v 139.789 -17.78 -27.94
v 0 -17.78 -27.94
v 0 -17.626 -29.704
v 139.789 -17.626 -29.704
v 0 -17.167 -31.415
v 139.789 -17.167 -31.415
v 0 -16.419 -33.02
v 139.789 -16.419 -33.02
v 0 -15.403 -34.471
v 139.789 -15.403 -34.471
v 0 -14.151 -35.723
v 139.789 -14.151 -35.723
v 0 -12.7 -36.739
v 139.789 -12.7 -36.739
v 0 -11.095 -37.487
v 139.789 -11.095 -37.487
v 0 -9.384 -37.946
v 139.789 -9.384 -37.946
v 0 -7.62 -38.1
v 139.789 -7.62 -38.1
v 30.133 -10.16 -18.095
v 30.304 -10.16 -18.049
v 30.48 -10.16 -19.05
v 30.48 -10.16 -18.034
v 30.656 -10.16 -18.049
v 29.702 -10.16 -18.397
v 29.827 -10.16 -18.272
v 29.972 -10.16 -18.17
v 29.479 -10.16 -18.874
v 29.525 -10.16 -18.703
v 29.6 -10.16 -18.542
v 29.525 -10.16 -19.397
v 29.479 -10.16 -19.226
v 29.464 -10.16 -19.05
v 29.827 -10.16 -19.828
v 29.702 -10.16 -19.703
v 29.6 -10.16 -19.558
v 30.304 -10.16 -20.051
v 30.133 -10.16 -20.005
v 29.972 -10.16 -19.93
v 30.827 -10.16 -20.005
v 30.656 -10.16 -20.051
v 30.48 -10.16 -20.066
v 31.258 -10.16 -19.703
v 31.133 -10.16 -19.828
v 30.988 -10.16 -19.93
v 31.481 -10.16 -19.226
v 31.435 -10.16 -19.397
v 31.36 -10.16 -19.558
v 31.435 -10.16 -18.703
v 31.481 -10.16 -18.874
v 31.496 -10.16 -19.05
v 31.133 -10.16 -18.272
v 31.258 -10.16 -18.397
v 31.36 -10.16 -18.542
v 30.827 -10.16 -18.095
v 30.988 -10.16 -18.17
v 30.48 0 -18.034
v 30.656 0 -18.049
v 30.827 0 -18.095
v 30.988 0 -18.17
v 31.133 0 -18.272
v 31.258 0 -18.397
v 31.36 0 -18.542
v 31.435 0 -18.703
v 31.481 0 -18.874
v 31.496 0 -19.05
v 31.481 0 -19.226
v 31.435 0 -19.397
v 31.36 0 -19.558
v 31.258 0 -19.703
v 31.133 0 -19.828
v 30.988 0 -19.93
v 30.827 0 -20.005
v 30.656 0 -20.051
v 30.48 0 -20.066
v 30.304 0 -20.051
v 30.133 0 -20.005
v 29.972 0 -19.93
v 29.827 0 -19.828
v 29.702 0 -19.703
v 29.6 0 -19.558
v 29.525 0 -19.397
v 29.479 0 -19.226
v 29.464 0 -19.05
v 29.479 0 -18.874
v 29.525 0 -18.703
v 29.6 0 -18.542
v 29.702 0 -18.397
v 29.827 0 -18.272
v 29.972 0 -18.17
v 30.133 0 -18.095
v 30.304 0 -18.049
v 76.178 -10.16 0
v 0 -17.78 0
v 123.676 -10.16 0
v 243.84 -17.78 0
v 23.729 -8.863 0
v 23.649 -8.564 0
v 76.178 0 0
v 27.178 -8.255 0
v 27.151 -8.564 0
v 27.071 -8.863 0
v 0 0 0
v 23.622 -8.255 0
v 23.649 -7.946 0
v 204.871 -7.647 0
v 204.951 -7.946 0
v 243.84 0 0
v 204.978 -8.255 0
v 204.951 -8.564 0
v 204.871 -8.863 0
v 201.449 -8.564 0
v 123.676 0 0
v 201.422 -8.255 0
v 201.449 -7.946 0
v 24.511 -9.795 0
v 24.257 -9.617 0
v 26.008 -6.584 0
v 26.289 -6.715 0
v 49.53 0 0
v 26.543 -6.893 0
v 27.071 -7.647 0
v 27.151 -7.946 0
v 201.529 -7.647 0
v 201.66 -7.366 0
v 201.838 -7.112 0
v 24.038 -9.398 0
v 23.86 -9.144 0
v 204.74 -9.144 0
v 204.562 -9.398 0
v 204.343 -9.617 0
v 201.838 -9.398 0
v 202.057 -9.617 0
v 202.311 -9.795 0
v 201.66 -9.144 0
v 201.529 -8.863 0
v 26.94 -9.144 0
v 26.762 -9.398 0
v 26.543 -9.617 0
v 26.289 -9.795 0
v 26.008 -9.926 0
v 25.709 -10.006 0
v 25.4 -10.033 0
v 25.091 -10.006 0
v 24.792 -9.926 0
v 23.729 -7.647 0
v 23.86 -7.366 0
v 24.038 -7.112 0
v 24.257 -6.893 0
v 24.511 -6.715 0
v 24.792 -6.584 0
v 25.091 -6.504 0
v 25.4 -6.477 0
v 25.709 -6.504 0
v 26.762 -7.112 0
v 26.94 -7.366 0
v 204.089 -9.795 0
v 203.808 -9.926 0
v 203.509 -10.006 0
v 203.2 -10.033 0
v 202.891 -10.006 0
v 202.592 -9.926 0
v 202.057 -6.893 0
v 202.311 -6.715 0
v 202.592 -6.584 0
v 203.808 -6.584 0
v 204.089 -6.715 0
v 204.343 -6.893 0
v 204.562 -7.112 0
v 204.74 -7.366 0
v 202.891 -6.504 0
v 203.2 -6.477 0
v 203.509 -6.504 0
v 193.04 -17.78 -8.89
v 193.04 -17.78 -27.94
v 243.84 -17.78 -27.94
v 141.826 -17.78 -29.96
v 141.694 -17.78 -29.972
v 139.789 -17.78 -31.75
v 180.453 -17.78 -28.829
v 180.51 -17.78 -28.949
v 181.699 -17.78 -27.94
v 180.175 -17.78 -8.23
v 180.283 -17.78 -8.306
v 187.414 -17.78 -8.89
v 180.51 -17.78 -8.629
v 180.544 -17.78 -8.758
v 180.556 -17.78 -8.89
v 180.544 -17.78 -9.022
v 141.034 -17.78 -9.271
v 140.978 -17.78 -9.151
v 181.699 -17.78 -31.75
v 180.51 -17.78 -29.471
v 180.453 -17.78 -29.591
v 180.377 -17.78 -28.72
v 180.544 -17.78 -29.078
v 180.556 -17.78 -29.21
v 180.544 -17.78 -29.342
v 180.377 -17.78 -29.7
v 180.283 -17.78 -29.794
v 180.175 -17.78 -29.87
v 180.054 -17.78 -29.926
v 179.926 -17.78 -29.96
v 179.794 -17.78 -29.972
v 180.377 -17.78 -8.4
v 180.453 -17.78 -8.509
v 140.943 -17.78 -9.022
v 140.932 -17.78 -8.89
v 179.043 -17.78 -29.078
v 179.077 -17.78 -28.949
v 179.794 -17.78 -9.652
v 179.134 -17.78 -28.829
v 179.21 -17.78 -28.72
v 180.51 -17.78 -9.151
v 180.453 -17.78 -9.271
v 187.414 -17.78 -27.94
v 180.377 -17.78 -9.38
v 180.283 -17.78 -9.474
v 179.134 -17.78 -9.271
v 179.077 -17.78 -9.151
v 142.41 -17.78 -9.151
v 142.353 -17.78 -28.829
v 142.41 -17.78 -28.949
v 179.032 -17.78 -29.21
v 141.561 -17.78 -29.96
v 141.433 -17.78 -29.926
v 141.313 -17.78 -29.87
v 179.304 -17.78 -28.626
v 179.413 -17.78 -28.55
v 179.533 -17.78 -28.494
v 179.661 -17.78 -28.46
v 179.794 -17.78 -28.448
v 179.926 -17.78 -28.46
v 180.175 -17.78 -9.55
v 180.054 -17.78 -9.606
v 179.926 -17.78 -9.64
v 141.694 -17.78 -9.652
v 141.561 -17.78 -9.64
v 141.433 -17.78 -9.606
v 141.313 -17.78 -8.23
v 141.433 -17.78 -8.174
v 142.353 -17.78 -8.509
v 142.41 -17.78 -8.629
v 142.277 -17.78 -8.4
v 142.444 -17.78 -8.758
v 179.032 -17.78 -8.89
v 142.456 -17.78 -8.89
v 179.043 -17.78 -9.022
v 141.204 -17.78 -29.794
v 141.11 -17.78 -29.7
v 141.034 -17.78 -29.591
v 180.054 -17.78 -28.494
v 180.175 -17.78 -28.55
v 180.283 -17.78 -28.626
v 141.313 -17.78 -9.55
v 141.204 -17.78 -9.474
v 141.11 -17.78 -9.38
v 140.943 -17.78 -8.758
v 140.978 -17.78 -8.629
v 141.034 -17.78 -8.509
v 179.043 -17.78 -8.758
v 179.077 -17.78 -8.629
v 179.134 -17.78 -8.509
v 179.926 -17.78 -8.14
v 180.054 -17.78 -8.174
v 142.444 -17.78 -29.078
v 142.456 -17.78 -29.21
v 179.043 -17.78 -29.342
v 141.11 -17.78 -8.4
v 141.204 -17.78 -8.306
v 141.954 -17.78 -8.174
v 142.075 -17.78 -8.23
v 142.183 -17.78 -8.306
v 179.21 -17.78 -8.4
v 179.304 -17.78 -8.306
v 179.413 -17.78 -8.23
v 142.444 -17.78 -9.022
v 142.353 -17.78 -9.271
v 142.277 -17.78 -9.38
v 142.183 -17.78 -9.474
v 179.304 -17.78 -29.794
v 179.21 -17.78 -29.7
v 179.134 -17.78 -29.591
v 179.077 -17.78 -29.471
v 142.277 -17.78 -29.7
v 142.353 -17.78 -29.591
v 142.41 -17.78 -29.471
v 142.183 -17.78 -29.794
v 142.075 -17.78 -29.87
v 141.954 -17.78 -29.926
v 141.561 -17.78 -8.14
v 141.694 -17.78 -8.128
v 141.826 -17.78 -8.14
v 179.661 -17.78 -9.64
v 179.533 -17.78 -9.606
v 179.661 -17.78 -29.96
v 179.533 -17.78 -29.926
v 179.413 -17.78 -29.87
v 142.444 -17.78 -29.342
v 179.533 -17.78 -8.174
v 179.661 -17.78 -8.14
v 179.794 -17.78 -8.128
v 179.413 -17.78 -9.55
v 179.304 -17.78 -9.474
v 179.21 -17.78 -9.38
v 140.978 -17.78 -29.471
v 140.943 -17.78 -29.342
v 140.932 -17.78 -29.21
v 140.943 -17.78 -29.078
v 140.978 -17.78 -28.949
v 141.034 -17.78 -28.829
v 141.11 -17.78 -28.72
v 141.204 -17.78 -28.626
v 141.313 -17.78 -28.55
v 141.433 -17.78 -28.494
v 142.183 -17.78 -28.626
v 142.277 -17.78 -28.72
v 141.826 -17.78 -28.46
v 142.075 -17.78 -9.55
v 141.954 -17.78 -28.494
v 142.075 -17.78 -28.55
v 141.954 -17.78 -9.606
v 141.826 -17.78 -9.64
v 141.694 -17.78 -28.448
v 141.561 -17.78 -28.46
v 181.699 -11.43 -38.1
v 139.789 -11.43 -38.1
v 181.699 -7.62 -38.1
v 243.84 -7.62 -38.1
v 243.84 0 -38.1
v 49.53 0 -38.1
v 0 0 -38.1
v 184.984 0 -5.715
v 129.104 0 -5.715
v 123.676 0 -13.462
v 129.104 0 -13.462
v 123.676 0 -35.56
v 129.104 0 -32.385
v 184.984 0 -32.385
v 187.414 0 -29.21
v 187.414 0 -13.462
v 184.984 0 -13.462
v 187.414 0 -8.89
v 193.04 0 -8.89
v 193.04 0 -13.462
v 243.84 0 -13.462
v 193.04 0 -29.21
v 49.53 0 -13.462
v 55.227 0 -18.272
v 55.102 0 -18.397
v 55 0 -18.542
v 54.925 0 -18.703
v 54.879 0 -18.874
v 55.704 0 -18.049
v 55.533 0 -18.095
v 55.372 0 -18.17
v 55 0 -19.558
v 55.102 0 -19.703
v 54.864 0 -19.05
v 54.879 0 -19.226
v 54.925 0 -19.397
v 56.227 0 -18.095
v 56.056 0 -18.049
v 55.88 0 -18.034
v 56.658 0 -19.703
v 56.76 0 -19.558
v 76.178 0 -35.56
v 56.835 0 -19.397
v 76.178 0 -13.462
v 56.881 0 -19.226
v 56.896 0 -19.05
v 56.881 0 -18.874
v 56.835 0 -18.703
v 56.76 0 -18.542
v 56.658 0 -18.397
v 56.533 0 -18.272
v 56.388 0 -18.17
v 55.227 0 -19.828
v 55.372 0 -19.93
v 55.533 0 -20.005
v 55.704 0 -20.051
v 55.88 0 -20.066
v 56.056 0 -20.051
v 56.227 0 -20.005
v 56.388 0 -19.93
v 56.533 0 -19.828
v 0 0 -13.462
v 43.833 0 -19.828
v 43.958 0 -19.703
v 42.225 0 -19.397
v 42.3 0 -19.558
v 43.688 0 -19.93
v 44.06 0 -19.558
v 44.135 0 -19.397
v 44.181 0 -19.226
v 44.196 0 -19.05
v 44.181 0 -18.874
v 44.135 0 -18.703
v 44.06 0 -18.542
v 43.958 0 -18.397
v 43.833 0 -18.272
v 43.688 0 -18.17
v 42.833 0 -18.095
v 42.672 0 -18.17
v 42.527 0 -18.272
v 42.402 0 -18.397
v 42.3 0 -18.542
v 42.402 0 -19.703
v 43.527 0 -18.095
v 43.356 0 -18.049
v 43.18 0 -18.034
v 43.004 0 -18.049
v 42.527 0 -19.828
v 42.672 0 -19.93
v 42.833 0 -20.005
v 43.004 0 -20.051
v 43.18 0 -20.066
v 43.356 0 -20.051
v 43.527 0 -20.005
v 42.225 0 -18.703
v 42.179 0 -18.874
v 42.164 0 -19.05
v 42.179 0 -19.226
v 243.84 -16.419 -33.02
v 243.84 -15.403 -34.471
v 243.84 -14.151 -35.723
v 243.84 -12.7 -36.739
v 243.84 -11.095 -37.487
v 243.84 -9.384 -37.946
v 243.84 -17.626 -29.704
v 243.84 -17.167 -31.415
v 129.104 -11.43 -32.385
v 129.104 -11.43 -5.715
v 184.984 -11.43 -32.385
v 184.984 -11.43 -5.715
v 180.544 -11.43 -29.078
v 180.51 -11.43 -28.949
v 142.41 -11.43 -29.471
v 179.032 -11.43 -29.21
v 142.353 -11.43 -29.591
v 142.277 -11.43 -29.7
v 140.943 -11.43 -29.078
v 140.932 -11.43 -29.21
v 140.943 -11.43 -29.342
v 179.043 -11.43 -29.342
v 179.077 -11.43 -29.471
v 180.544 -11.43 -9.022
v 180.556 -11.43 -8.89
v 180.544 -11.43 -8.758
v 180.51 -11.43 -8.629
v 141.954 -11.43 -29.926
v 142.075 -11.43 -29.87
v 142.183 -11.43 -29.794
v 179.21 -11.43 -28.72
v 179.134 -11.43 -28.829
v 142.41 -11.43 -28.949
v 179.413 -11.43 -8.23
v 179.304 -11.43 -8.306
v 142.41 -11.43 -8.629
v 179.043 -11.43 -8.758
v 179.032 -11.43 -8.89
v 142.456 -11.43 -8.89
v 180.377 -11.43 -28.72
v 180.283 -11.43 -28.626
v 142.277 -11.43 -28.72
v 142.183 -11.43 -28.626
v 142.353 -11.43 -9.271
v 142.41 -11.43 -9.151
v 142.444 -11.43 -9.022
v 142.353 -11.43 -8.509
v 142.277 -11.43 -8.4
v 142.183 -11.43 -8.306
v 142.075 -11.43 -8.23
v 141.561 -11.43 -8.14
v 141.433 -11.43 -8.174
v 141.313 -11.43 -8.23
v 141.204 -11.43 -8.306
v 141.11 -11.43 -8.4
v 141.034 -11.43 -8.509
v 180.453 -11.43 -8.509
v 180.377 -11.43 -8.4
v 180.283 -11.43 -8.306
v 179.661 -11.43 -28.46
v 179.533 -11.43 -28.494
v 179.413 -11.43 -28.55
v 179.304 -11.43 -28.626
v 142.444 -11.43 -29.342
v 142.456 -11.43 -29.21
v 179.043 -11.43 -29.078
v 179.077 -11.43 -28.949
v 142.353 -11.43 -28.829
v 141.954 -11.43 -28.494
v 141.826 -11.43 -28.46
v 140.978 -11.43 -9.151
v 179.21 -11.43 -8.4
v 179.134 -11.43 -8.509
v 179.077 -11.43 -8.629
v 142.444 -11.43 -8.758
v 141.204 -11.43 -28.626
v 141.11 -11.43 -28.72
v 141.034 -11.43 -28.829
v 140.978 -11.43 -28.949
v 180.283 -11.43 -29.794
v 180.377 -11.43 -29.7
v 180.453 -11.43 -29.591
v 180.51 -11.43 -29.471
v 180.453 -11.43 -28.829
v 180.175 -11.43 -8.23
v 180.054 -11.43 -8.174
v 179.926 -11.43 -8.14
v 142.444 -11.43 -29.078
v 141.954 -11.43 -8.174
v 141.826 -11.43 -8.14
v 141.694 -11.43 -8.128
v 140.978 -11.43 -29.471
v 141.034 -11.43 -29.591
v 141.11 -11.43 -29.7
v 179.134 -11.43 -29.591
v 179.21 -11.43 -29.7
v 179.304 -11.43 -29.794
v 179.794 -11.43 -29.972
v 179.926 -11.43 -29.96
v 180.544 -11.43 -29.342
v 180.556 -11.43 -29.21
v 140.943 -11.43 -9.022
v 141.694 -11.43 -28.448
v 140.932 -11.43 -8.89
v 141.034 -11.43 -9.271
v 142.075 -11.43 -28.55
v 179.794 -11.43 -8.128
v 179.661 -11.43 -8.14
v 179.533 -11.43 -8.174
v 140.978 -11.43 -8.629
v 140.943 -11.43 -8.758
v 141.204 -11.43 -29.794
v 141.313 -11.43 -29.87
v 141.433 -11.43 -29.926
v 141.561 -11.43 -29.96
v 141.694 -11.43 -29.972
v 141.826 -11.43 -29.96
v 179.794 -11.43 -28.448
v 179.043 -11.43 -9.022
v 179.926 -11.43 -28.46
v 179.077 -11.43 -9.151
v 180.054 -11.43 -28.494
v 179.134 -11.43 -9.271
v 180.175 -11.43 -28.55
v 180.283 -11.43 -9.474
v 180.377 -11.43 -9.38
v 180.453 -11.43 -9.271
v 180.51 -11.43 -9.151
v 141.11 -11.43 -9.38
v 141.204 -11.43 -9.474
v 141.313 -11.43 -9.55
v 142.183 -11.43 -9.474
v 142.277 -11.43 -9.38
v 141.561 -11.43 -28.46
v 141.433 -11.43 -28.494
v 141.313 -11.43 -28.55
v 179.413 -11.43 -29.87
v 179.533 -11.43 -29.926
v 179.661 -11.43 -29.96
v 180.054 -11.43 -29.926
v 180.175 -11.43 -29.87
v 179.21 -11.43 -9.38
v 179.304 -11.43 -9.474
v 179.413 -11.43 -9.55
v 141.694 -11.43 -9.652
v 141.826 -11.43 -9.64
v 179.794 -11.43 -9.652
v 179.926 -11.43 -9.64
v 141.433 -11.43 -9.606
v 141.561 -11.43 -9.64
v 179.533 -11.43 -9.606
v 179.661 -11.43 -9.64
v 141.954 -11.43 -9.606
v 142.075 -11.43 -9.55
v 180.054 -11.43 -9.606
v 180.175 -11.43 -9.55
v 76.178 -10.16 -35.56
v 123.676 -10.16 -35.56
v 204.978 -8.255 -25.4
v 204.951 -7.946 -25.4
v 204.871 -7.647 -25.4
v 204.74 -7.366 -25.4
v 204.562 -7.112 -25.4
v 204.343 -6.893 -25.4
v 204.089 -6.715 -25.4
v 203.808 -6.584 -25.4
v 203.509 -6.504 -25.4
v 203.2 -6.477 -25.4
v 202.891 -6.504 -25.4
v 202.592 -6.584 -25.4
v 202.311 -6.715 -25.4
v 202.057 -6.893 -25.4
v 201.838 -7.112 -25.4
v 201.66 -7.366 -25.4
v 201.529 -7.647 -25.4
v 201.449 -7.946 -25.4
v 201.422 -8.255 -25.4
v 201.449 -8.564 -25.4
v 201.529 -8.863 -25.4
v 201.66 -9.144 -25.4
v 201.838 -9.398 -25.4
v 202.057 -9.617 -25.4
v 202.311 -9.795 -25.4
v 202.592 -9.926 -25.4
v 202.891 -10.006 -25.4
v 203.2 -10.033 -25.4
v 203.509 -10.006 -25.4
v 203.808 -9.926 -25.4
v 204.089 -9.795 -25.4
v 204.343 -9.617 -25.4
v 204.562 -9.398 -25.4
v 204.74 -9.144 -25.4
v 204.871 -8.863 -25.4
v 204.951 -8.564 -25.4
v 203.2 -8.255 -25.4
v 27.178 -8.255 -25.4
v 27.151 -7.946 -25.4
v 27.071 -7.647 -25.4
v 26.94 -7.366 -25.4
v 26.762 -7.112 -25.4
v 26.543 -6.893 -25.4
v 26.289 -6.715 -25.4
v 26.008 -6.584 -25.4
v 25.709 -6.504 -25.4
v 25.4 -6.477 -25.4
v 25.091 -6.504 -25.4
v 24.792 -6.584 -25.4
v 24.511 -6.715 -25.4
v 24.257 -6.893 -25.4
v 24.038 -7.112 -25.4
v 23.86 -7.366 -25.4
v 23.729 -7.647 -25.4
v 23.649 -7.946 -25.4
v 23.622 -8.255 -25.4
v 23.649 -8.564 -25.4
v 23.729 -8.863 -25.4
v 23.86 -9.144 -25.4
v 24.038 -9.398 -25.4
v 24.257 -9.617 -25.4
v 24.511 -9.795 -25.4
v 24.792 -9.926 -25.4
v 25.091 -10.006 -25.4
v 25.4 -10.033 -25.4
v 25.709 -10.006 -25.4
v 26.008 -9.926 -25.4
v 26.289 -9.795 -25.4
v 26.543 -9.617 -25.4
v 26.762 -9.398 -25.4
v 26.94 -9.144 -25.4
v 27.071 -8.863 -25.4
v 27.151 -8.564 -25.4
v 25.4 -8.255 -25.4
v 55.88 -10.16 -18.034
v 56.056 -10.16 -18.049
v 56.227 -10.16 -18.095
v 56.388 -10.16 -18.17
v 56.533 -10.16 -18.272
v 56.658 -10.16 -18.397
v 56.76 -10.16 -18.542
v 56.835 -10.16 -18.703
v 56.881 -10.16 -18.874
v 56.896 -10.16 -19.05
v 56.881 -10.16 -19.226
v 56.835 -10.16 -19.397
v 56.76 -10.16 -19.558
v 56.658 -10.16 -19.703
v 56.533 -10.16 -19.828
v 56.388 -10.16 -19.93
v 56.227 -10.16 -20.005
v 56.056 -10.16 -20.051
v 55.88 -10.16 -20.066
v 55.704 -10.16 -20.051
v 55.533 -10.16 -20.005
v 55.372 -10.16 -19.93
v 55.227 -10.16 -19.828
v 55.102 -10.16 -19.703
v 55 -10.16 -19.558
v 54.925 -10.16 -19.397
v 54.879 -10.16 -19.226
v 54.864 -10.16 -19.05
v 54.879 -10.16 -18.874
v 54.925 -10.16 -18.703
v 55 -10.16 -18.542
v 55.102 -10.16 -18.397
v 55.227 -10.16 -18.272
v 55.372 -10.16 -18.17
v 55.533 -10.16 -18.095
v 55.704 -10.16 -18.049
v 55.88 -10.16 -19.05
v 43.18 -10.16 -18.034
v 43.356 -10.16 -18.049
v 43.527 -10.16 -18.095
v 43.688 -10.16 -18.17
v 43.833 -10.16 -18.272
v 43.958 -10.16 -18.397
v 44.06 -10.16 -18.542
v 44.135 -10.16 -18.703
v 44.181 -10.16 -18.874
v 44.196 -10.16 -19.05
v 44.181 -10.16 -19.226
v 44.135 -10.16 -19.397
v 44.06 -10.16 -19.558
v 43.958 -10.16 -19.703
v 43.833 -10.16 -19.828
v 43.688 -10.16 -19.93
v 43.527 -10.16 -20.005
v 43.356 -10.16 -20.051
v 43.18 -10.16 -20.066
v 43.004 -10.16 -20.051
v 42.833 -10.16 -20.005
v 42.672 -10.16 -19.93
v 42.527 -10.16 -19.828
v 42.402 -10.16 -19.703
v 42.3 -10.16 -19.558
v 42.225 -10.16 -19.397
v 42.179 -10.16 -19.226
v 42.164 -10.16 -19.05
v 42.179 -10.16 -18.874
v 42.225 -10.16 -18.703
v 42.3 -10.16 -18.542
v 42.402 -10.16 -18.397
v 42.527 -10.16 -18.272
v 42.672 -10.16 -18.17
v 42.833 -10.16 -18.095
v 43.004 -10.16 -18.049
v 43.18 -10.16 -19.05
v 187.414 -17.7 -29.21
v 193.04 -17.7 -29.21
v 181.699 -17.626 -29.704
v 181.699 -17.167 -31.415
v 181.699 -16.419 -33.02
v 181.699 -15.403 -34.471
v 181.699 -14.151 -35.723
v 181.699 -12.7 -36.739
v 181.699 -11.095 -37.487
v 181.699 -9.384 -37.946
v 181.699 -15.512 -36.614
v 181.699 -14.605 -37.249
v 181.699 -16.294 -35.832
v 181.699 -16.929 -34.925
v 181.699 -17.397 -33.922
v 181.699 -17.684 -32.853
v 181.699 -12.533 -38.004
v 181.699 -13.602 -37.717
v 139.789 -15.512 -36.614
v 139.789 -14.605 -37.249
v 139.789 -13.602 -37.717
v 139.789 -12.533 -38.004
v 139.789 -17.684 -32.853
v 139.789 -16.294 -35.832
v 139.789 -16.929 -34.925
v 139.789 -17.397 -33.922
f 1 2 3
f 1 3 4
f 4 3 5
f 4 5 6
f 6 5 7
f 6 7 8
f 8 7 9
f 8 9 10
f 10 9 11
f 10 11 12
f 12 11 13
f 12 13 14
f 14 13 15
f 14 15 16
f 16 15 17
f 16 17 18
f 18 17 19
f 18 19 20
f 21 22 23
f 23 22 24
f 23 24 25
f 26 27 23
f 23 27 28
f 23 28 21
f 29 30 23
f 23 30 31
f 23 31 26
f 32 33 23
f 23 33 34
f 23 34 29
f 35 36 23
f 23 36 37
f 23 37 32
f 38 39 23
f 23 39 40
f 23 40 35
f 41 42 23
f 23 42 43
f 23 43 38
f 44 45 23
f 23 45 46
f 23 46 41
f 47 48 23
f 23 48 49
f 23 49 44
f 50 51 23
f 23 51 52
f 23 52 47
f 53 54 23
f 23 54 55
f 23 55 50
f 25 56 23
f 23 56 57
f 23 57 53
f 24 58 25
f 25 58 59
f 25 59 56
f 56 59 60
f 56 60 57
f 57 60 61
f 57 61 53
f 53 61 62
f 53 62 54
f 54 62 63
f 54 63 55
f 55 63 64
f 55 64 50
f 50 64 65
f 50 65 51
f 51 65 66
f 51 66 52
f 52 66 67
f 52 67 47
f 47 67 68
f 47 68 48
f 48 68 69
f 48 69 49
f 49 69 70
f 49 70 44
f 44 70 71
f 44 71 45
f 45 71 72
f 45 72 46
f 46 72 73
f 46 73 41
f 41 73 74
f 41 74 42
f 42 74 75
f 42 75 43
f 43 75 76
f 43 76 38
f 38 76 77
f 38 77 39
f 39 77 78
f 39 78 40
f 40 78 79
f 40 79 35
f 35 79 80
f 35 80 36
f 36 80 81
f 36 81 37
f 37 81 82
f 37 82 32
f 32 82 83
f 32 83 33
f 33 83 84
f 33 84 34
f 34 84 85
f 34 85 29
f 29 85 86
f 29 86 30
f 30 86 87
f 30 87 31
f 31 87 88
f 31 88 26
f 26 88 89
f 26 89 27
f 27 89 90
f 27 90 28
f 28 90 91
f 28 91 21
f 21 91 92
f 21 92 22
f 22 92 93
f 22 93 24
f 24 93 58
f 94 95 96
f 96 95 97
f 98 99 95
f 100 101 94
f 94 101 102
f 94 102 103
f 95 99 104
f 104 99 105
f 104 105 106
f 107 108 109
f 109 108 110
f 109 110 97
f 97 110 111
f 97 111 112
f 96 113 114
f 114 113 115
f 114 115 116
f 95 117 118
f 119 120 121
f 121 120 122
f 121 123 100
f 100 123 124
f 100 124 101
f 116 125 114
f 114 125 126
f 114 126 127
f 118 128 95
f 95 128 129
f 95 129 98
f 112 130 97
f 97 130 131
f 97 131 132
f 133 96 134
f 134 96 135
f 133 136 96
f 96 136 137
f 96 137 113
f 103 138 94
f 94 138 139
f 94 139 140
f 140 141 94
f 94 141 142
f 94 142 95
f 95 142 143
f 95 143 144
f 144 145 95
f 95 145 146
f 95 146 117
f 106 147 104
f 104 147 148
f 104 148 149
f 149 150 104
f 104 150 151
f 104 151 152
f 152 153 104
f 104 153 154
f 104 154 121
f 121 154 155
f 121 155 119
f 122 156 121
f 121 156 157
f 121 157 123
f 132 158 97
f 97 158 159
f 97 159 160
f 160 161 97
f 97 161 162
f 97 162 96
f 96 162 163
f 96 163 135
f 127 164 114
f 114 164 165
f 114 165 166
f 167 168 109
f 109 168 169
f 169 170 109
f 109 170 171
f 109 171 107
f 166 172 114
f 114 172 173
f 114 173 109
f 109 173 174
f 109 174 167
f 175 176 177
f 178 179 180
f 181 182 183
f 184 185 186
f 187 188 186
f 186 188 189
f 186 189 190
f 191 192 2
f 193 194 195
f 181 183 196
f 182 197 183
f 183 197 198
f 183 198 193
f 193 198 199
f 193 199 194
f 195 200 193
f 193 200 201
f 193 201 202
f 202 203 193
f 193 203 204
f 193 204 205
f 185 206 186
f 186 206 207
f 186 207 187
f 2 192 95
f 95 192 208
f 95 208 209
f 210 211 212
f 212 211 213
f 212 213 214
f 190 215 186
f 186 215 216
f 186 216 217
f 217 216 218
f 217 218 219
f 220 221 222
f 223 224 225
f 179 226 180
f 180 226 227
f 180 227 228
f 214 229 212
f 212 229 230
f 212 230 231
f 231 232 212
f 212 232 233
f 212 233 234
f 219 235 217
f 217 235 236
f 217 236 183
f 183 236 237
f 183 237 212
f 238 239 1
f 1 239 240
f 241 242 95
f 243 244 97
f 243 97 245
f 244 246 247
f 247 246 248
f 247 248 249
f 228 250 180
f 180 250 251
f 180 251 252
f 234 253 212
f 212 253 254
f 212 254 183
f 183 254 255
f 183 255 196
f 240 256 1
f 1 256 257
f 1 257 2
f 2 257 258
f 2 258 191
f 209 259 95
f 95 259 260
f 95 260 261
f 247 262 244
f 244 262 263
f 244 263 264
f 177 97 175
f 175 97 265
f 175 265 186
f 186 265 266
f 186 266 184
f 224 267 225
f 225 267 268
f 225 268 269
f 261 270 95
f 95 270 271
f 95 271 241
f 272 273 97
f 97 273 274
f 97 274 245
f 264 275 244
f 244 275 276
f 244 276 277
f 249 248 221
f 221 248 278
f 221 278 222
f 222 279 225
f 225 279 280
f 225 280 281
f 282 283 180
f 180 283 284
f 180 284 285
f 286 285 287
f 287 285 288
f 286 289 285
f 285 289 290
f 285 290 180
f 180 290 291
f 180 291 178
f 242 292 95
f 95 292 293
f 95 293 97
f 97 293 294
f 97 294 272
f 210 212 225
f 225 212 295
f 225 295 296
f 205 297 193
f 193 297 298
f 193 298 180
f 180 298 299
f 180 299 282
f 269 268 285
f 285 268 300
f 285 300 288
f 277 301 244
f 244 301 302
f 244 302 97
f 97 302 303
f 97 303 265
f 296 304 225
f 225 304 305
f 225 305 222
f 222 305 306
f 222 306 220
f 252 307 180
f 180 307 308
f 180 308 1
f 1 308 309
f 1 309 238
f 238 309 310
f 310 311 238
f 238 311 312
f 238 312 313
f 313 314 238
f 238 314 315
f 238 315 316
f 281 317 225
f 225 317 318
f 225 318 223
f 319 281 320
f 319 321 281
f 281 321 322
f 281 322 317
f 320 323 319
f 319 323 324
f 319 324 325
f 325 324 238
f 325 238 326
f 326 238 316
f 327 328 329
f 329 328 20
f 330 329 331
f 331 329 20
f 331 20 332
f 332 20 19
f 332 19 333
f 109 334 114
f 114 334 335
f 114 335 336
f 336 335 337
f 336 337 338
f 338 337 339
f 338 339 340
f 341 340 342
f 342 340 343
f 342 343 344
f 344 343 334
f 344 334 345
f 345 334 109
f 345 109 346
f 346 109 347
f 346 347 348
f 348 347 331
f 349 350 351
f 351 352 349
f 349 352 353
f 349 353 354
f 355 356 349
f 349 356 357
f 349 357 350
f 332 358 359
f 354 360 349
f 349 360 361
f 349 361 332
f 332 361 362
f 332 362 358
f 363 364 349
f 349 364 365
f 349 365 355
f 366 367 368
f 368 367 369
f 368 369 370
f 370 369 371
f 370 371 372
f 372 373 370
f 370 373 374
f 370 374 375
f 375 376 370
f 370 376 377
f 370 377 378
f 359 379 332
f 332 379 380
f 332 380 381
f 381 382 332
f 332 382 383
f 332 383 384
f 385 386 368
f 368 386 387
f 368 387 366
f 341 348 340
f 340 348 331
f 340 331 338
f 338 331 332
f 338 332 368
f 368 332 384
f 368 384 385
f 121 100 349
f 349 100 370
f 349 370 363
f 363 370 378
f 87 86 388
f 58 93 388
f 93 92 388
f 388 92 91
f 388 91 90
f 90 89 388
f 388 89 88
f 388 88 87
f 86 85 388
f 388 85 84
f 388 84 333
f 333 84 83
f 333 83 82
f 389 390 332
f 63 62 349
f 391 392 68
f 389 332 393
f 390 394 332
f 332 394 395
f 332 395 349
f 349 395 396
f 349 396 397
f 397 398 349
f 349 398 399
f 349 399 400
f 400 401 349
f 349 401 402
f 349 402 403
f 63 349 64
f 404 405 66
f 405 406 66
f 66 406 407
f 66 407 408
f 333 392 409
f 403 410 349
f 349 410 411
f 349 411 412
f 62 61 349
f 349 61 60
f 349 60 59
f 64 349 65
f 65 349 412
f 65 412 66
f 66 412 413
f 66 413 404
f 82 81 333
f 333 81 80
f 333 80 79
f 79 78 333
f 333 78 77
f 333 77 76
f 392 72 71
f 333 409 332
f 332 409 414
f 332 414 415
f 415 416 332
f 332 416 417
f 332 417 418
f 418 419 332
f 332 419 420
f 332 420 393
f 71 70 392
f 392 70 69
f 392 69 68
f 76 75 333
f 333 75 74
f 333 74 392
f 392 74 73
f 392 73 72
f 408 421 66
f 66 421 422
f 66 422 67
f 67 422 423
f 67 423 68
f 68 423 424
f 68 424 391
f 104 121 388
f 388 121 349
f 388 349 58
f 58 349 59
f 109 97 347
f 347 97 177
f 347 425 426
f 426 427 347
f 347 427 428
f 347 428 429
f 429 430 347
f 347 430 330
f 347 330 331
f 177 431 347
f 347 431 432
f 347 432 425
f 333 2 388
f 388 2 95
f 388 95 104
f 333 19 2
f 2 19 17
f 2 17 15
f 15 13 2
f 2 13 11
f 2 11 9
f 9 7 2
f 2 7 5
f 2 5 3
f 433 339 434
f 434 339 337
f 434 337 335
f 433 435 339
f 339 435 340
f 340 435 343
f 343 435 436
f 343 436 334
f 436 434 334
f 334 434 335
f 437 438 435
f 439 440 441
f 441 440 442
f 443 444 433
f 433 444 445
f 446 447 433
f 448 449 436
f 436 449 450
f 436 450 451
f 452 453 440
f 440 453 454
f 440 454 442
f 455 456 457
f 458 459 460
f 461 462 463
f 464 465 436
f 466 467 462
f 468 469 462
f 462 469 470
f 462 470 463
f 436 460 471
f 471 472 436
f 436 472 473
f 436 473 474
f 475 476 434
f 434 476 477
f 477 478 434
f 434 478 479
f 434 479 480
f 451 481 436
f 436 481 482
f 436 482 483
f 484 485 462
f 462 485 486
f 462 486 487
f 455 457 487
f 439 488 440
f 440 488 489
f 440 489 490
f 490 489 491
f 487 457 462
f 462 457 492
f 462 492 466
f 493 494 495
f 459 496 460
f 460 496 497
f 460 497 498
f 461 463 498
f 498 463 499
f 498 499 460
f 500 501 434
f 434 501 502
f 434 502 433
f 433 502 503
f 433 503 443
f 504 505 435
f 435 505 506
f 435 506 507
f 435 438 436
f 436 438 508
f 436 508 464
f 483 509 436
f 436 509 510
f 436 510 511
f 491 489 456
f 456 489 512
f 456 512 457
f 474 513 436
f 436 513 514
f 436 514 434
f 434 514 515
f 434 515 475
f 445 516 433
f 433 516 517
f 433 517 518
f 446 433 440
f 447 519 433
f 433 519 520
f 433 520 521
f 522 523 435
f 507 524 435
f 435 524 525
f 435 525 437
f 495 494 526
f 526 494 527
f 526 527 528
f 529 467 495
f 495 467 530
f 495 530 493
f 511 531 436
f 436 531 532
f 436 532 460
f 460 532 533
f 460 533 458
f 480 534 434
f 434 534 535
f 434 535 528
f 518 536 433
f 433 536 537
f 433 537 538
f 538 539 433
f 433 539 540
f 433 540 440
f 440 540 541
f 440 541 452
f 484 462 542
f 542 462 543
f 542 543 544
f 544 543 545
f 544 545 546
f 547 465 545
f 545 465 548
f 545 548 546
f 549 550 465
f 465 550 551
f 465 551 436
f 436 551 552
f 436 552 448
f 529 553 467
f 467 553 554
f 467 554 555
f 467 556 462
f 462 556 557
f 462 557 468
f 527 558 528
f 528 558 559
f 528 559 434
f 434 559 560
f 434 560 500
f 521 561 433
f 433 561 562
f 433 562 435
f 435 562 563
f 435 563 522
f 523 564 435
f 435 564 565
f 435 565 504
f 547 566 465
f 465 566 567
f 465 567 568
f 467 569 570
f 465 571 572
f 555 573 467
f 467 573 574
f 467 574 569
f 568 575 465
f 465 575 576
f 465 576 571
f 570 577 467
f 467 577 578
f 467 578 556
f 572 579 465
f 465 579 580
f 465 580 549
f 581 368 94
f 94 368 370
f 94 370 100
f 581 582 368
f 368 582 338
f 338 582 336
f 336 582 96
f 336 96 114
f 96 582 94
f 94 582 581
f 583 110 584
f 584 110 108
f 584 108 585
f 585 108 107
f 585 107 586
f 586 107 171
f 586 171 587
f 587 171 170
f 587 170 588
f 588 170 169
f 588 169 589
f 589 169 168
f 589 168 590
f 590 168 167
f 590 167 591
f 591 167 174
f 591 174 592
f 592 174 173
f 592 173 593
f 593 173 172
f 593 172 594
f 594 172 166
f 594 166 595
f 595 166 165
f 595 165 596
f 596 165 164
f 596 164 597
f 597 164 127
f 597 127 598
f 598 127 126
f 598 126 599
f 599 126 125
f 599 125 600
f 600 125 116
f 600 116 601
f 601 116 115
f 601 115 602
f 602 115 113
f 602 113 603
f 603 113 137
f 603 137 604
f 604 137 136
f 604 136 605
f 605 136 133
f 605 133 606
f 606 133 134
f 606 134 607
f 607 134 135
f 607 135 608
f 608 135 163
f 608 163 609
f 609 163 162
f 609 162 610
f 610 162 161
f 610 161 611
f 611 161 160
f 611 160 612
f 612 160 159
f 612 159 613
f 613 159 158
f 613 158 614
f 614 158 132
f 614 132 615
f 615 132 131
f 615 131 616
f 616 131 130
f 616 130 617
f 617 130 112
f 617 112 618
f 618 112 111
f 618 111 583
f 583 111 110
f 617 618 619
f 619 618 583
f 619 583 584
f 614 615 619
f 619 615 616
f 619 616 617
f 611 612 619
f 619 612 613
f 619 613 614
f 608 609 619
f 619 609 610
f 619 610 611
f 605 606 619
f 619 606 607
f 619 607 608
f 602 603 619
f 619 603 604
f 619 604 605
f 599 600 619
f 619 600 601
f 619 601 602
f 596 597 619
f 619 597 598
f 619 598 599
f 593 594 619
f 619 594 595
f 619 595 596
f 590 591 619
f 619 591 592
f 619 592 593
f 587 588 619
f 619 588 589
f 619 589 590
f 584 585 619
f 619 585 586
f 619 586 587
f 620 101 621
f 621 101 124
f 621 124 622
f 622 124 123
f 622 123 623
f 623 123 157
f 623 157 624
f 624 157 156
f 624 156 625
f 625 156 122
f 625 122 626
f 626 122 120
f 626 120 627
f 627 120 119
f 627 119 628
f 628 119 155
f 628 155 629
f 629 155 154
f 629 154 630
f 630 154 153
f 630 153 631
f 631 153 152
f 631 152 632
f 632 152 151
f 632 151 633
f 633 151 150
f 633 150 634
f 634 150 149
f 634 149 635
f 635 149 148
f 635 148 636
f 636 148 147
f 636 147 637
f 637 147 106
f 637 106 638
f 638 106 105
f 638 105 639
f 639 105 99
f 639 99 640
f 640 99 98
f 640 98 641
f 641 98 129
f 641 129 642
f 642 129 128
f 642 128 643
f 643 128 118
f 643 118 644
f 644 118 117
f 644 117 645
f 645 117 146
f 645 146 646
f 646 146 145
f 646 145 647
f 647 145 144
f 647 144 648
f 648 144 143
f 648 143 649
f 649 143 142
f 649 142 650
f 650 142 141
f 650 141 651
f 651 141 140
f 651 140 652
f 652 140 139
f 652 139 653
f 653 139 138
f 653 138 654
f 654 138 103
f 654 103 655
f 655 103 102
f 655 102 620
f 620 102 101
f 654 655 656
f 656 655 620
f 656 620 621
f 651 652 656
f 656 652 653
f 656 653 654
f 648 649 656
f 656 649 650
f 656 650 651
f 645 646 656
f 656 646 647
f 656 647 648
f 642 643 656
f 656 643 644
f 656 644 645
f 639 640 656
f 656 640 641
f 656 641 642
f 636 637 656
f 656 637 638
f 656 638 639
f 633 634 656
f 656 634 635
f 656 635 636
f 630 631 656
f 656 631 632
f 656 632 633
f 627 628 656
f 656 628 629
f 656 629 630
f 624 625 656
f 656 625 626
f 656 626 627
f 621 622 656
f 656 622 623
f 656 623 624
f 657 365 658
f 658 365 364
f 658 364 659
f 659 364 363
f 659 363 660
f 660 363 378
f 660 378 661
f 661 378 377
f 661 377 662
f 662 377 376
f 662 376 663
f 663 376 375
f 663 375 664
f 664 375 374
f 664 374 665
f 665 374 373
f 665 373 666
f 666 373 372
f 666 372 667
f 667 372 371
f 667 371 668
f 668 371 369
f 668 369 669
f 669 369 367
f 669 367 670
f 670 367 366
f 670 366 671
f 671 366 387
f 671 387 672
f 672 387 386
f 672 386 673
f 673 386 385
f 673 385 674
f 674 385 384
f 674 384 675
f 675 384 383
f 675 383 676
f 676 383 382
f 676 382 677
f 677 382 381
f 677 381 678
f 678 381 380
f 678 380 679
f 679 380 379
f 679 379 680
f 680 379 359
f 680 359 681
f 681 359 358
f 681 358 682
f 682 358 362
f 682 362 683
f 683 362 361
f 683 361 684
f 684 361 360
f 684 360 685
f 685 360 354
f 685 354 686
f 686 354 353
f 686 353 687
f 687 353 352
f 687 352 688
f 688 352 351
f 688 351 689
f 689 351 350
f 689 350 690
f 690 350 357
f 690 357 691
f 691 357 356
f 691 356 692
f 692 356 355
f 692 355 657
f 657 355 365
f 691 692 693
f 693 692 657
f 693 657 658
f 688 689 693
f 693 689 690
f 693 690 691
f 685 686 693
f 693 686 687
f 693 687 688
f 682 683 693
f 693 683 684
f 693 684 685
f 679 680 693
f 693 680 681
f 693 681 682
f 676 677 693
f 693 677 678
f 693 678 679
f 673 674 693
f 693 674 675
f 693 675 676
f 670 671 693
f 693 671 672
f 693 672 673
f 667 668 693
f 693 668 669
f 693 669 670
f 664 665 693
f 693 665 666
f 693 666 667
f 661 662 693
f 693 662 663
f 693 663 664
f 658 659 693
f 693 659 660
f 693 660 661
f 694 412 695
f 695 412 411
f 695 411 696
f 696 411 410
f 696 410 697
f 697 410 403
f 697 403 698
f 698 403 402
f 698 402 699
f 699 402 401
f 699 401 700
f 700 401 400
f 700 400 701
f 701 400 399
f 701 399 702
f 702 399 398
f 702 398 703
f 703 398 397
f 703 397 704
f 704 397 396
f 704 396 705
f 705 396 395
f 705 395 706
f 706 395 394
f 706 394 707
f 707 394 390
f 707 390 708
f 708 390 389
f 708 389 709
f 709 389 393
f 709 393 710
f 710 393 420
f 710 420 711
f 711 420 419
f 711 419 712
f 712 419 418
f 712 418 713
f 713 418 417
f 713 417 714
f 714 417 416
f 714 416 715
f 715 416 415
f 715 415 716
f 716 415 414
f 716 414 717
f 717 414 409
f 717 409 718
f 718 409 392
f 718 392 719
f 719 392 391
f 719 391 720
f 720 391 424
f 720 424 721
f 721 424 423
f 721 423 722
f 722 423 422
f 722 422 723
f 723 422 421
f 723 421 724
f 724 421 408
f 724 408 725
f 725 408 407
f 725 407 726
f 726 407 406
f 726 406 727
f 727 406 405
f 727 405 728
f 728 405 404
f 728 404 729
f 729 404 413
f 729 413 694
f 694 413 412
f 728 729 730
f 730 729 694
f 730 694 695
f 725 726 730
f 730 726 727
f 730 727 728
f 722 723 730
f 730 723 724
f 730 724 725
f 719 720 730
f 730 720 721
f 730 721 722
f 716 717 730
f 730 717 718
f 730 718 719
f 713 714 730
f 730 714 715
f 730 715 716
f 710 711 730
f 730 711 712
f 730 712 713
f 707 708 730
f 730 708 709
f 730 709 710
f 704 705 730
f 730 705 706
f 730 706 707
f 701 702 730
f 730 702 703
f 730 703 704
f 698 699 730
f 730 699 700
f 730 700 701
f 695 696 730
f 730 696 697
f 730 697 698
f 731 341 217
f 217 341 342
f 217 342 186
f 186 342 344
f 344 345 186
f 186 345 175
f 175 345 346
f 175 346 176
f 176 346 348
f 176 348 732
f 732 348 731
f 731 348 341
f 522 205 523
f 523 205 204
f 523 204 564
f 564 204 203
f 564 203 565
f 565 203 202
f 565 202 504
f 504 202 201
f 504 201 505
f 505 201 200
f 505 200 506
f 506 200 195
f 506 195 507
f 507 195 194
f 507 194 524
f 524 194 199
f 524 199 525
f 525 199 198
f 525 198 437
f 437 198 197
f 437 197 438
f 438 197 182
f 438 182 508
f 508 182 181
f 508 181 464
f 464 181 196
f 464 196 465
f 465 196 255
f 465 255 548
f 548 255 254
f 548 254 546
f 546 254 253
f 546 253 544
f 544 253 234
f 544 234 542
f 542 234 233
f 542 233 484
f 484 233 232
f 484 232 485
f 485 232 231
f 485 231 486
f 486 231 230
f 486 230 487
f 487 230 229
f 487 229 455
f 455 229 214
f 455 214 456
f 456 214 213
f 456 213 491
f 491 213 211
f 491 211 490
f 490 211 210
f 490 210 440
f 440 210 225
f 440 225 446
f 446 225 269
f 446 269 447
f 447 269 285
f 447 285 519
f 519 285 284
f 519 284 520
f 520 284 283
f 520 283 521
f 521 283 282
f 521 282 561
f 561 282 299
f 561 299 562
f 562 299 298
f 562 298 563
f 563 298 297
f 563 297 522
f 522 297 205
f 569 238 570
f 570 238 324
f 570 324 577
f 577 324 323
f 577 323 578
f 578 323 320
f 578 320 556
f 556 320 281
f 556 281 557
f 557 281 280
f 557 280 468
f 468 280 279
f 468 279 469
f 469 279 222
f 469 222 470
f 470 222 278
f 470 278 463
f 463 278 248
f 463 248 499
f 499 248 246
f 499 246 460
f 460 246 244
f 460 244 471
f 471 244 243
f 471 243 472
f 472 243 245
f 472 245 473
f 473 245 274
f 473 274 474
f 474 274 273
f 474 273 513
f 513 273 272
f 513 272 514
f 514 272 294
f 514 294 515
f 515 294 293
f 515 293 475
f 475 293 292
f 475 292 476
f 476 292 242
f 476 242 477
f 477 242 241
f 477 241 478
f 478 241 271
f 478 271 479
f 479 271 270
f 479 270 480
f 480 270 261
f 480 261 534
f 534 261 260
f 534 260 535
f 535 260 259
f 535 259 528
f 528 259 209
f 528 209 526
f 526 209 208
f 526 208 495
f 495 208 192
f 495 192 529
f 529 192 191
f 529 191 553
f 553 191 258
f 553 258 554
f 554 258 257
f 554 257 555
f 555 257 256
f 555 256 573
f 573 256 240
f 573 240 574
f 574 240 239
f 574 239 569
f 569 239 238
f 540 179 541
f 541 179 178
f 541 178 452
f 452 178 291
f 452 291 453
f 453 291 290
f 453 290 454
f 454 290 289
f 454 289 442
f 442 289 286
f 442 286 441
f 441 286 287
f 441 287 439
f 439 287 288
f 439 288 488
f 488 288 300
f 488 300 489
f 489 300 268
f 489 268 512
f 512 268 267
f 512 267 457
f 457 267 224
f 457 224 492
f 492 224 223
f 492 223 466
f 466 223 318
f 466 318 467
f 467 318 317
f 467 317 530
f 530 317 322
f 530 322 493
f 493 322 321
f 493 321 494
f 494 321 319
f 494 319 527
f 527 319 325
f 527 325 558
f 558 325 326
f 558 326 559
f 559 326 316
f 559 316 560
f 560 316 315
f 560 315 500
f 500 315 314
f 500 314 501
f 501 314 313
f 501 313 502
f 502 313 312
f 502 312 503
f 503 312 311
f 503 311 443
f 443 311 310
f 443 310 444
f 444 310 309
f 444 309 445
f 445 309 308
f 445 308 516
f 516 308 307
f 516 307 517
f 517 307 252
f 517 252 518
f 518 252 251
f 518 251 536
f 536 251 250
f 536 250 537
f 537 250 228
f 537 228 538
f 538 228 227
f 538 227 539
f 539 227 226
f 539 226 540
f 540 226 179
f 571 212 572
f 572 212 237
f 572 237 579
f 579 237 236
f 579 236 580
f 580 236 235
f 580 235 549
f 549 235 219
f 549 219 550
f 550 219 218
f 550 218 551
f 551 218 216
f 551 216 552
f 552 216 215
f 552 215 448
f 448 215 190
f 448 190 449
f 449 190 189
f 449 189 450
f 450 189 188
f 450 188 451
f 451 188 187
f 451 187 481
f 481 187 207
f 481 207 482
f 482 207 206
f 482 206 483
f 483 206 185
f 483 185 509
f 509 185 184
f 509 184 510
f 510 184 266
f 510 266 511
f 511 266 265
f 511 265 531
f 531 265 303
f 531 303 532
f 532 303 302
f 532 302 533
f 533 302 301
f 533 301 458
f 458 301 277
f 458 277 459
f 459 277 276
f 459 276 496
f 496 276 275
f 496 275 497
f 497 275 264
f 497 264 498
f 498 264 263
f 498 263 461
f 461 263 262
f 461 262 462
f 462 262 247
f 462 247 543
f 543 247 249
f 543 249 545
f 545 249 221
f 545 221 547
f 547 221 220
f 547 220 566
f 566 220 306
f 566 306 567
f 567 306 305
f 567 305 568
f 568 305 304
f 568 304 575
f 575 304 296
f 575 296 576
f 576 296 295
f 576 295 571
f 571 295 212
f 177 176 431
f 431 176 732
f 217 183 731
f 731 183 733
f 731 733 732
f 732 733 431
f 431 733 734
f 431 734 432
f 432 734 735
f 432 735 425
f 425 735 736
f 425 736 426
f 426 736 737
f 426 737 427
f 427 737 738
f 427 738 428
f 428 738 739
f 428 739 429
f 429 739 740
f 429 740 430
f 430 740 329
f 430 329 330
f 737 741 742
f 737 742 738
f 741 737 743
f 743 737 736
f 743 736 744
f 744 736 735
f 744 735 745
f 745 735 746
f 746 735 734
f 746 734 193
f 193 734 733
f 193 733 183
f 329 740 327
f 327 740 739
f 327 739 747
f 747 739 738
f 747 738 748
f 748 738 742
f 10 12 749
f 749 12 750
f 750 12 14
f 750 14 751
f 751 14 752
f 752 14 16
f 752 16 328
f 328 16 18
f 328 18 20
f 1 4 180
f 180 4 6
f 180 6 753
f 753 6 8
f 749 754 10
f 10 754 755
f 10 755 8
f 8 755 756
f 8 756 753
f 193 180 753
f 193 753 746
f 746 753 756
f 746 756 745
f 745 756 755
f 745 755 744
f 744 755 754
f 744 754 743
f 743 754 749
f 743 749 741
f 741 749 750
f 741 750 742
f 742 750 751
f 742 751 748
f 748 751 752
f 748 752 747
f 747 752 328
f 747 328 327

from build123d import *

# Parameters (mm, degrees)
SKETCH1_W               = 38.1
SKETCH1_H               = 17.78
BOSS_EXTRUDE1_DEPTH     = 243.84
SKETCH2_W               = 55.88
SKETCH2_H               = 26.67
CUT_EXTRUDE1_DEPTH      = 11.43
SKETCH3_W               = 47.498
SKETCH3_H               = 35.56
CUT_EXTRUDE2_DEPTH      = 10.16
SKETCH4_R               = 1.778
CUT_EXTRUDE3_DEPTH      = 25.4
SKETCH5_R               = 1.016
CUT_EXTRUDE4_DEPTH      = 10.16
SKETCH6_R               = 0.762
CUT_EXTRUDE5_DEPTH      = 6.35
LPATTERN1_COUNT         = 2
LPATTERN1_PITCH         = 38.1
LPATTERN2_COUNT         = 3
LPATTERN2_PITCH         = 12.7
MIRROR2_COPY_1_SKETCH_R = 0.762
MIRROR2_COPY_1_DEPTH    = 6.35
SKETCH7_W               = 5.626456328
SKETCH7_H               = 20.32
CUT_EXTRUDE6_DEPTH      = 248.4382428
MIRROR3_COPY_1_SKETCH_R = 0.762
MIRROR3_COPY_1_DEPTH    = 6.35
MIRROR3_COPY_2_SKETCH_R = 0.762
MIRROR3_COPY_2_DEPTH    = 6.35
MIRROR3_COPY_3_SKETCH_R = 0.762
MIRROR3_COPY_3_DEPTH    = 6.35
SKETCH8_R               = 0.762
BOSS_EXTRUDE2_DEPTH     = 17.78
FILLET1_R               = 10.16
BOSS_EXTRUDE3_DEPTH     = 20.955
SKETCH12_R              = 0.762
CUT_EXTRUDE8_DEPTH      = 248.063150834
FILLET2_R               = 6.35


with BuildPart() as part:
    # Sketch1 → Boss-Extrude1 (new body)
    with BuildSketch(Plane(origin=(0, 0, 0), x_dir=(0, 0, -1), z_dir=(1, 0, 0))):
        with Locations((19.05, -8.89)):
            Rectangle(SKETCH1_W, SKETCH1_H)
    extrude(amount=BOSS_EXTRUDE1_DEPTH)

    # Sketch2 → Cut-Extrude1 (cut)
    with BuildSketch(Plane(origin=(0, 0, 0), x_dir=(1, 0, 0), z_dir=(0, 1, 0))):
        with Locations((157.044117332, 19.05)):
            Rectangle(SKETCH2_W, SKETCH2_H)
    extrude(amount=-CUT_EXTRUDE1_DEPTH, mode=Mode.SUBTRACT)

    # Sketch3 → Cut-Extrude2 (cut)
    with BuildSketch(Plane(origin=(0, 0, 0), x_dir=(1, 0, 0), z_dir=(0, 1, 0))):
        with Locations((99.926945865, 17.78)):
            Rectangle(SKETCH3_W, SKETCH3_H)
    extrude(amount=-CUT_EXTRUDE2_DEPTH, mode=Mode.SUBTRACT)

    # Sketch4 → Cut-Extrude3 (cut)
    with BuildSketch(Plane.XY):
        with Locations((25.4, -8.255)):
            Circle(SKETCH4_R)
        with Locations((203.2, -8.255)):
            Circle(SKETCH4_R)
    extrude(amount=-CUT_EXTRUDE3_DEPTH, mode=Mode.SUBTRACT)

    # Sketch5 → Cut-Extrude4 (cut)
    with BuildSketch(Plane(origin=(0, 0, 0), x_dir=(1, 0, 0), z_dir=(0, 1, 0))):
        with Locations(Location((55.88, 19.05, 0), (0, 0, 270))):
            Circle(SKETCH5_R)
    cut_extrude4 = extrude(amount=-CUT_EXTRUDE4_DEPTH, mode=Mode.SUBTRACT)

    # Sketch6 → Cut-Extrude5 (cut)
    with BuildSketch(Plane(origin=(0, 0, 0), x_dir=(1, 0, 0), z_dir=(0, 1, 0))):
        with Locations(Location((200.66, 29.21, 0), (0, 0, 270))):
            Circle(SKETCH6_R)
        with Locations(Location((200.66, 8.89, 0), (0, 0, 270))):
            Circle(SKETCH6_R)
    cut_extrude5 = extrude(amount=-CUT_EXTRUDE5_DEPTH, mode=Mode.SUBTRACT)

    # LPattern1: Cut-Extrude5 ×2
    with Locations(*[(i * LPATTERN1_PITCH, 0, 0) for i in range(1, LPATTERN1_COUNT)]):
        add(cut_extrude5, mode=Mode.SUBTRACT)

    # LPattern2: Cut-Extrude4 ×3
    with Locations(*[(-i * LPATTERN2_PITCH, 0, 0) for i in range(1, LPATTERN2_COUNT)]):
        add(cut_extrude4, mode=Mode.SUBTRACT)

    # Mirror2: Cut-Extrude5 across plane
    add(cut_extrude5.mirror(Plane.ZX.offset(-8.89)), mode=Mode.SUBTRACT)

    # Mirror2 copy 1 sketch → Mirror2 copy 1 (cut)
    with BuildSketch(Plane(origin=(38.1, -17.78, 0), x_dir=(1, 0, 0), z_dir=(0, -1, 0))):
        with Locations((200.66, -29.21)):
            Circle(MIRROR2_COPY_1_SKETCH_R)
        with Locations((200.66, -8.89)):
            Circle(MIRROR2_COPY_1_SKETCH_R)
    extrude(amount=-MIRROR2_COPY_1_DEPTH, mode=Mode.SUBTRACT)

    # Sketch7 → Cut-Extrude6 (cut, through all)
    with BuildSketch(Plane.XZ.offset(17.78)):
        with Locations((190.226771836, -19.05)):
            Rectangle(SKETCH7_W, SKETCH7_H)
    extrude(amount=-CUT_EXTRUDE6_DEPTH, mode=Mode.SUBTRACT)

    # Mirror3 copy 1 sketch → Mirror3 copy 1 (cut)
    with BuildSketch(Plane(origin=(380.453543672, -17.78, 0), x_dir=(-1, 0, 0), z_dir=(0, -1, 0))):
        with Locations(Location((200.66, 29.21, 0), (0, 0, 270))):
            Circle(MIRROR3_COPY_1_SKETCH_R)
        with Locations(Location((200.66, 8.89, 0), (0, 0, 270))):
            Circle(MIRROR3_COPY_1_SKETCH_R)
    extrude(amount=-MIRROR3_COPY_1_DEPTH, mode=Mode.SUBTRACT)

    # Mirror3 copy 2 sketch → Mirror3 copy 2 (cut)
    with BuildSketch(Plane(origin=(342.353543672, -17.78, 0), x_dir=(-1, 0, 0), z_dir=(0, -1, 0))):
        with Locations(Location((200.66, 29.21, 0), (0, 0, 270))):
            Circle(MIRROR3_COPY_2_SKETCH_R)
        with Locations(Location((200.66, 8.89, 0), (0, 0, 270))):
            Circle(MIRROR3_COPY_2_SKETCH_R)
    extrude(amount=-MIRROR3_COPY_2_DEPTH, mode=Mode.SUBTRACT)

    # Mirror3 copy 3 sketch → Mirror3 copy 3 (cut)
    with BuildSketch(Plane(origin=(380.453543672, 0, 0), x_dir=(-1, 0, 0), z_dir=(0, 1, 0))):
        with Locations((200.66, -29.21)):
            Circle(MIRROR3_COPY_3_SKETCH_R)
        with Locations((200.66, -8.89)):
            Circle(MIRROR3_COPY_3_SKETCH_R)
    extrude(amount=-MIRROR3_COPY_3_DEPTH, mode=Mode.SUBTRACT)

    # Sketch8 → Boss-Extrude2 (add)
    with BuildSketch(Plane.XZ.offset(17.78)):
        with Locations((200.66, -8.89)):
            Circle(SKETCH8_R)
        with Locations((238.76, -8.89)):
            Circle(SKETCH8_R)
        with Locations((238.76, -29.21)):
            Circle(SKETCH8_R)
        with Locations((200.66, -29.21)):
            Circle(SKETCH8_R)
    extrude(amount=-BOSS_EXTRUDE2_DEPTH)

    # Fillet1
    # the kernel refuses this fillet: 10.16 mm, written as the material it takes off along each edge
    with BuildSketch(Plane(origin=(-25.4, -17.78, -38.1), x_dir=(0, 1, 0), z_dir=(1, 0, 0))) as fillet1_piece_1:
        with BuildLine():
            CenterArc((FILLET1_R, FILLET1_R), FILLET1_R, 180, 90)
            Line((0, FILLET1_R), (0, 0))
            Line((0, 0), (FILLET1_R, 0))
        make_face()
    extrude(amount=294.64, mode=Mode.SUBTRACT)

    # Sketch11 → Boss-Extrude3 (add, symmetric)
    with BuildSketch(Plane(origin=(160.743543672, 0, 0), x_dir=(0, 0, -1), z_dir=(1, 0, 0))):
        with BuildLine():
            Line((27.94, -17.78), (38.1, -17.78))
            Line((38.1, -17.78), (38.1, -7.62))
            ThreePointArc((38.1, -7.62), (35.124204897, -14.804204897), (27.94, -17.78))
        make_face()
    extrude(amount=BOSS_EXTRUDE3_DEPTH, both=True)

    # Sketch12 → Cut-Extrude8 (cut, through all)
    with BuildSketch(Plane(origin=(0, -11.43, 0), x_dir=(1, 0, 0), z_dir=(0, 1, 0))):
        with Locations(Location((141.693543672, 29.21, 0), (0, 0, 270))):
            Circle(SKETCH12_R)
        with Locations(Location((179.793543672, 29.21, 0), (0, 0, 270))):
            Circle(SKETCH12_R)
    extrude(amount=-CUT_EXTRUDE8_DEPTH, mode=Mode.SUBTRACT)

    # Fillet2
    fillet2_edges = [part.edges().sort_by_distance(p)[0] for p in [
        (160.743543672, -17.78, -38.1),
    ]]
    fillet(fillet2_edges, radius=FILLET2_R)


solid = part.part
